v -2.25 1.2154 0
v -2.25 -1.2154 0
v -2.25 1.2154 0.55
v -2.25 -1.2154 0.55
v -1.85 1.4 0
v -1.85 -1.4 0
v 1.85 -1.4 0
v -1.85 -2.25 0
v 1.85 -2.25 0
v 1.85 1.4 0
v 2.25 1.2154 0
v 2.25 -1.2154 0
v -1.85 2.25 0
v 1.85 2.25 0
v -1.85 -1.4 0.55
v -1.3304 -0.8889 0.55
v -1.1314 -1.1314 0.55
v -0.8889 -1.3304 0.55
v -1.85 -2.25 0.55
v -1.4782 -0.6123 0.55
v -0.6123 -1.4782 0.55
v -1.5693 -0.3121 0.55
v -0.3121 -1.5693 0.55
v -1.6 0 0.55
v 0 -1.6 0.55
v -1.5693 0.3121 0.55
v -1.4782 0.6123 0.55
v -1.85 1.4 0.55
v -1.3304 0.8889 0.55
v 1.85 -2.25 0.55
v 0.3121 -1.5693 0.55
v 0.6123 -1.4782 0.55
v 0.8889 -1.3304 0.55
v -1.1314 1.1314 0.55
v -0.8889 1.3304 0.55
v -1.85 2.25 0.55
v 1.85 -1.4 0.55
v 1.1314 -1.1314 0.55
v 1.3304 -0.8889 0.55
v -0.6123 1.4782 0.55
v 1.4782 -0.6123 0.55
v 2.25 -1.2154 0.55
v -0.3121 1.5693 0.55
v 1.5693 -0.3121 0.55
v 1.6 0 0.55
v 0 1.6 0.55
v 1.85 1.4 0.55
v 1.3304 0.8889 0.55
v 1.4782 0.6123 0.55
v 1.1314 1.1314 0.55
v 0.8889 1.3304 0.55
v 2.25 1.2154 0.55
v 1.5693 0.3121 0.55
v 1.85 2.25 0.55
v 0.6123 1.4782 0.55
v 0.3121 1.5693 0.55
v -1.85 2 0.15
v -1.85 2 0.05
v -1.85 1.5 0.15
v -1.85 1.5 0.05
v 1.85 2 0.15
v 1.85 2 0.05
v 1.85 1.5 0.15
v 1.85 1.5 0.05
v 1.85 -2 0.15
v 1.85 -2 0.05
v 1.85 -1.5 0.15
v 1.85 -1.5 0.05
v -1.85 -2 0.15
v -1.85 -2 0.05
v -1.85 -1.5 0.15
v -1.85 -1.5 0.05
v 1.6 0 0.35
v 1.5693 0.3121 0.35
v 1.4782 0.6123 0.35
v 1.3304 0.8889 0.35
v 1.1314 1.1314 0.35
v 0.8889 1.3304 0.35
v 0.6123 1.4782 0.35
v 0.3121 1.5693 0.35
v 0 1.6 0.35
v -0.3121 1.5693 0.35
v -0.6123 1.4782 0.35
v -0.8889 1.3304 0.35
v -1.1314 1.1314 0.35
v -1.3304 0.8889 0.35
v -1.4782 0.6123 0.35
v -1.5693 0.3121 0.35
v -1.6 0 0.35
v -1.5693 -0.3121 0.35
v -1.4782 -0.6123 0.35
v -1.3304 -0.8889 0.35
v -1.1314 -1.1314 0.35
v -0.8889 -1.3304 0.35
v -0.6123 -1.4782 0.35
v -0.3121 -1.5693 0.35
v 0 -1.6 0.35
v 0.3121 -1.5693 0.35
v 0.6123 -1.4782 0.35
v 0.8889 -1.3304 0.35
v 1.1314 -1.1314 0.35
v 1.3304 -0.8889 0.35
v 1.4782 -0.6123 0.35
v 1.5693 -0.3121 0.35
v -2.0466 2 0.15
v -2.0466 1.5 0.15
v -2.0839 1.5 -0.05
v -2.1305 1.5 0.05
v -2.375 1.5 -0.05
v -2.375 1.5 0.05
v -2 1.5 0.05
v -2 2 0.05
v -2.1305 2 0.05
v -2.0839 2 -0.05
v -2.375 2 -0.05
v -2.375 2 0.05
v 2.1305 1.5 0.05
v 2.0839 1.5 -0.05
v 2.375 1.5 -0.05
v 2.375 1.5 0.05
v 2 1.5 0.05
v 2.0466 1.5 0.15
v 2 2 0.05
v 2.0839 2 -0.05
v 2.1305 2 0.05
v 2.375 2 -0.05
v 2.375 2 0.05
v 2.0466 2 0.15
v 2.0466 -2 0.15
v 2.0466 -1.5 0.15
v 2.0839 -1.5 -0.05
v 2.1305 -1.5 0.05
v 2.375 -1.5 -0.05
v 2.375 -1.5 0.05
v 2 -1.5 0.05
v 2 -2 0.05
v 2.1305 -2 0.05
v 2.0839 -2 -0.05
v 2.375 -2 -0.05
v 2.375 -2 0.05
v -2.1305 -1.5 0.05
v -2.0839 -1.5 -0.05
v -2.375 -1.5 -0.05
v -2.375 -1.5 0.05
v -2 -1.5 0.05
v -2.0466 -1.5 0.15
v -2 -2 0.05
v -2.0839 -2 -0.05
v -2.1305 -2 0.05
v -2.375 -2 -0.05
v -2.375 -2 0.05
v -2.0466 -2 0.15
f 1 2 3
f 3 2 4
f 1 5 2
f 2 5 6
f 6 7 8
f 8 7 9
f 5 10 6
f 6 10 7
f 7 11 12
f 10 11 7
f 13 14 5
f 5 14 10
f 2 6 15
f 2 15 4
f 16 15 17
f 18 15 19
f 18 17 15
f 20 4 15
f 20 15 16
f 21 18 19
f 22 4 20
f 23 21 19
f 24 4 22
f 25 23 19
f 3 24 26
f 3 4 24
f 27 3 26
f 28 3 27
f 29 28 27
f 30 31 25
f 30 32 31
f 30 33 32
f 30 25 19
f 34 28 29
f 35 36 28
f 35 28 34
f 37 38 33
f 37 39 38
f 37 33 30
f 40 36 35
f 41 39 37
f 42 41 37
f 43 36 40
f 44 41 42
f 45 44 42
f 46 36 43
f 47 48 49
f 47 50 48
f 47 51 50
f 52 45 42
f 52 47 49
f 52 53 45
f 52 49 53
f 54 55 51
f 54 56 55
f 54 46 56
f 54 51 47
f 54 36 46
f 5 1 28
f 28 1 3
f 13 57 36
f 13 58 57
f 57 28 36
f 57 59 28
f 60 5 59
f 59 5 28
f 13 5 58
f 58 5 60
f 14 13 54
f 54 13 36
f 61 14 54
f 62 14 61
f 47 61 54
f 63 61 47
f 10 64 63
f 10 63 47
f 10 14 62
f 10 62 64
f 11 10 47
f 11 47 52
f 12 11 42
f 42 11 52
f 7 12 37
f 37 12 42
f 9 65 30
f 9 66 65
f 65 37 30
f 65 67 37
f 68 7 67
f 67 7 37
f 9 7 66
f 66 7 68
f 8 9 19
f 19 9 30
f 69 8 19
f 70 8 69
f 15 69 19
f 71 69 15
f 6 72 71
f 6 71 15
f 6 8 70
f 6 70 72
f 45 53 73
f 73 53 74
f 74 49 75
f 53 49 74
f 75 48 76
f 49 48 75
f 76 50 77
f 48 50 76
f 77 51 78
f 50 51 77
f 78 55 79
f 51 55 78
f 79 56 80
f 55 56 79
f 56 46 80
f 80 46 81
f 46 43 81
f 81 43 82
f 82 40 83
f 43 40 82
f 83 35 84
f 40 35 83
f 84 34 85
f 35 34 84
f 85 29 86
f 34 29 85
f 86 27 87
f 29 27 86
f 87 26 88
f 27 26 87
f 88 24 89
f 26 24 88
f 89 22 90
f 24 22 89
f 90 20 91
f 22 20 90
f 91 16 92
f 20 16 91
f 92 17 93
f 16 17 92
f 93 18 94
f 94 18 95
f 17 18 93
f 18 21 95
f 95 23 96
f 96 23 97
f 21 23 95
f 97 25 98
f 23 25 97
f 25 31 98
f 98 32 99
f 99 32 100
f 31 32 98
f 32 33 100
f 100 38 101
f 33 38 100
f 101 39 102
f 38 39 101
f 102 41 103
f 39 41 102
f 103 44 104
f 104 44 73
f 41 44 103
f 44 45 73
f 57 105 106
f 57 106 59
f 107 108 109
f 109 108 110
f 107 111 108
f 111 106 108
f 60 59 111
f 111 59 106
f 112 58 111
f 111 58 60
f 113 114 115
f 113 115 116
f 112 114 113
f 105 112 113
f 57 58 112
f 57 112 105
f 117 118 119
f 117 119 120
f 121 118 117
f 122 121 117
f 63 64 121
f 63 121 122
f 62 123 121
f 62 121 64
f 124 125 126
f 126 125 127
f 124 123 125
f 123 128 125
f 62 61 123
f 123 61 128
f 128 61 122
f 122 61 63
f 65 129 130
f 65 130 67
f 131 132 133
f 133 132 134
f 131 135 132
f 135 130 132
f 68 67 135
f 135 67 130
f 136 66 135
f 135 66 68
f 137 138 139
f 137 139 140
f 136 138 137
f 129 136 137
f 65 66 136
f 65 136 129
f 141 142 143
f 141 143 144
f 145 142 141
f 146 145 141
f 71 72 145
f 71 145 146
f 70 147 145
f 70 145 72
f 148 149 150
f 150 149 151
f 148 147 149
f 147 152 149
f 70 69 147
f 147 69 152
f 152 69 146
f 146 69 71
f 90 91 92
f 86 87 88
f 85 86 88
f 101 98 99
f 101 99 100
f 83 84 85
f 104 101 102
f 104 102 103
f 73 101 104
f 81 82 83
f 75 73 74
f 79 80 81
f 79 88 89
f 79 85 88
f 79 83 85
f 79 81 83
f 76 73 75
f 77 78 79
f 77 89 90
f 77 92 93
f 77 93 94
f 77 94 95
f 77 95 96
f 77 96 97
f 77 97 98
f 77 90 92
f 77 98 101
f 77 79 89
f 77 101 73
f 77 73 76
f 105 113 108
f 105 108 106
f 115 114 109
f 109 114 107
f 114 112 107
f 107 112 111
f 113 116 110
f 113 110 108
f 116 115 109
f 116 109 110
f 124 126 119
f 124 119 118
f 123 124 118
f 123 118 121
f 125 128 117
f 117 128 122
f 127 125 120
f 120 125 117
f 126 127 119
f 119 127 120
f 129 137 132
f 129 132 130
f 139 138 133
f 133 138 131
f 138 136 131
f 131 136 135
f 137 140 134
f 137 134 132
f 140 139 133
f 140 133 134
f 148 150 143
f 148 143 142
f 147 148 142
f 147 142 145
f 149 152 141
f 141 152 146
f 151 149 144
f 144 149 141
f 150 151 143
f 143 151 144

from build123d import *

# Parameters (mm, degrees)
SKETCH_W                   = 4.5
SKETCH_H                   = 4.5
PAD_DEPTH                  = 0.55
POCKET_DEPTH               = 13.326367
POCKET_MIRRORED_2_DEPTH    = 13.326367
SKETCH002_R                = 1.6
POCKET001_DEPTH            = 0.2
PAD001_DEPTH               = 0.25
PAD001_MIRRORED002_2_DEPTH = 0.25


with BuildPart() as part:
    # Sketch → Pad (new body)
    with BuildSketch(Plane.XY):
        Rectangle(SKETCH_W, SKETCH_H)
    extrude(amount=PAD_DEPTH)

    # Sketch001 → Pocket (cut, through all)
    with BuildSketch(Plane.XY):
        Polygon((-1.85, 2.5), (-1.85, 1.4), (-2.5, 1.1), (-2.5, 2.5), align=None)
    pocket = extrude(amount=POCKET_DEPTH, mode=Mode.SUBTRACT)

    # Sketch001 Mirrored 2 → Pocket Mirrored 2 (cut, through all)
    with BuildSketch(Plane(origin=(0, 0, 0), x_dir=(1, 0, 0), z_dir=(0, 0, -1))):
        Polygon((-1.85, 2.5), (-1.85, 1.4), (-2.5, 1.1), (-2.5, 2.5), align=None)
    pocket_mirrored_2 = extrude(amount=-POCKET_MIRRORED_2_DEPTH, mode=Mode.SUBTRACT)

    # Mirrored001: Pocket, Pocket Mirrored 2 across YZ
    add(pocket.mirror(Plane.YZ), mode=Mode.SUBTRACT)
    add(pocket_mirrored_2.mirror(Plane.YZ), mode=Mode.SUBTRACT)

    # Sketch002 (on Face4 of MultiTransform) → Pocket001 (cut)
    with BuildSketch(Plane.XY.offset(0.55)):
        Circle(SKETCH002_R)
    extrude(amount=-POCKET001_DEPTH, mode=Mode.SUBTRACT)

    # Sketch003 (on DatumPlane) → Pad001 (join, symmetric)
    with BuildSketch(Plane.XZ.offset(-1.75)):
        Polygon((-2.375, -0.05), (-2.375, 0.05), (-2.130541, 0.05), (-2.046631, 0.15), (-1.755541, 0.15), (-1.755541, 0.05), (-2, 0.05), (-2.08391, -0.05), align=None)
    pad001 = extrude(amount=PAD001_DEPTH, both=True)

    # Sketch003 Mirrored002 2 → Pad001 Mirrored002 2 (add, symmetric)
    with BuildSketch(Plane.XZ.offset(1.75)):
        Polygon((-2.375, -0.05), (-2.375, 0.05), (-2.130541, 0.05), (-2.046631, 0.15), (-1.755541, 0.15), (-1.755541, 0.05), (-2, 0.05), (-2.08391, -0.05), align=None)
    pad001_mirrored002_2 = extrude(amount=-PAD001_MIRRORED002_2_DEPTH, both=True)

    # Mirrored003: Pad001, Pad001 Mirrored002 2 across YZ
    add(pad001.mirror(Plane.YZ))
    add(pad001_mirrored002_2.mirror(Plane.YZ))


solid = part.part
